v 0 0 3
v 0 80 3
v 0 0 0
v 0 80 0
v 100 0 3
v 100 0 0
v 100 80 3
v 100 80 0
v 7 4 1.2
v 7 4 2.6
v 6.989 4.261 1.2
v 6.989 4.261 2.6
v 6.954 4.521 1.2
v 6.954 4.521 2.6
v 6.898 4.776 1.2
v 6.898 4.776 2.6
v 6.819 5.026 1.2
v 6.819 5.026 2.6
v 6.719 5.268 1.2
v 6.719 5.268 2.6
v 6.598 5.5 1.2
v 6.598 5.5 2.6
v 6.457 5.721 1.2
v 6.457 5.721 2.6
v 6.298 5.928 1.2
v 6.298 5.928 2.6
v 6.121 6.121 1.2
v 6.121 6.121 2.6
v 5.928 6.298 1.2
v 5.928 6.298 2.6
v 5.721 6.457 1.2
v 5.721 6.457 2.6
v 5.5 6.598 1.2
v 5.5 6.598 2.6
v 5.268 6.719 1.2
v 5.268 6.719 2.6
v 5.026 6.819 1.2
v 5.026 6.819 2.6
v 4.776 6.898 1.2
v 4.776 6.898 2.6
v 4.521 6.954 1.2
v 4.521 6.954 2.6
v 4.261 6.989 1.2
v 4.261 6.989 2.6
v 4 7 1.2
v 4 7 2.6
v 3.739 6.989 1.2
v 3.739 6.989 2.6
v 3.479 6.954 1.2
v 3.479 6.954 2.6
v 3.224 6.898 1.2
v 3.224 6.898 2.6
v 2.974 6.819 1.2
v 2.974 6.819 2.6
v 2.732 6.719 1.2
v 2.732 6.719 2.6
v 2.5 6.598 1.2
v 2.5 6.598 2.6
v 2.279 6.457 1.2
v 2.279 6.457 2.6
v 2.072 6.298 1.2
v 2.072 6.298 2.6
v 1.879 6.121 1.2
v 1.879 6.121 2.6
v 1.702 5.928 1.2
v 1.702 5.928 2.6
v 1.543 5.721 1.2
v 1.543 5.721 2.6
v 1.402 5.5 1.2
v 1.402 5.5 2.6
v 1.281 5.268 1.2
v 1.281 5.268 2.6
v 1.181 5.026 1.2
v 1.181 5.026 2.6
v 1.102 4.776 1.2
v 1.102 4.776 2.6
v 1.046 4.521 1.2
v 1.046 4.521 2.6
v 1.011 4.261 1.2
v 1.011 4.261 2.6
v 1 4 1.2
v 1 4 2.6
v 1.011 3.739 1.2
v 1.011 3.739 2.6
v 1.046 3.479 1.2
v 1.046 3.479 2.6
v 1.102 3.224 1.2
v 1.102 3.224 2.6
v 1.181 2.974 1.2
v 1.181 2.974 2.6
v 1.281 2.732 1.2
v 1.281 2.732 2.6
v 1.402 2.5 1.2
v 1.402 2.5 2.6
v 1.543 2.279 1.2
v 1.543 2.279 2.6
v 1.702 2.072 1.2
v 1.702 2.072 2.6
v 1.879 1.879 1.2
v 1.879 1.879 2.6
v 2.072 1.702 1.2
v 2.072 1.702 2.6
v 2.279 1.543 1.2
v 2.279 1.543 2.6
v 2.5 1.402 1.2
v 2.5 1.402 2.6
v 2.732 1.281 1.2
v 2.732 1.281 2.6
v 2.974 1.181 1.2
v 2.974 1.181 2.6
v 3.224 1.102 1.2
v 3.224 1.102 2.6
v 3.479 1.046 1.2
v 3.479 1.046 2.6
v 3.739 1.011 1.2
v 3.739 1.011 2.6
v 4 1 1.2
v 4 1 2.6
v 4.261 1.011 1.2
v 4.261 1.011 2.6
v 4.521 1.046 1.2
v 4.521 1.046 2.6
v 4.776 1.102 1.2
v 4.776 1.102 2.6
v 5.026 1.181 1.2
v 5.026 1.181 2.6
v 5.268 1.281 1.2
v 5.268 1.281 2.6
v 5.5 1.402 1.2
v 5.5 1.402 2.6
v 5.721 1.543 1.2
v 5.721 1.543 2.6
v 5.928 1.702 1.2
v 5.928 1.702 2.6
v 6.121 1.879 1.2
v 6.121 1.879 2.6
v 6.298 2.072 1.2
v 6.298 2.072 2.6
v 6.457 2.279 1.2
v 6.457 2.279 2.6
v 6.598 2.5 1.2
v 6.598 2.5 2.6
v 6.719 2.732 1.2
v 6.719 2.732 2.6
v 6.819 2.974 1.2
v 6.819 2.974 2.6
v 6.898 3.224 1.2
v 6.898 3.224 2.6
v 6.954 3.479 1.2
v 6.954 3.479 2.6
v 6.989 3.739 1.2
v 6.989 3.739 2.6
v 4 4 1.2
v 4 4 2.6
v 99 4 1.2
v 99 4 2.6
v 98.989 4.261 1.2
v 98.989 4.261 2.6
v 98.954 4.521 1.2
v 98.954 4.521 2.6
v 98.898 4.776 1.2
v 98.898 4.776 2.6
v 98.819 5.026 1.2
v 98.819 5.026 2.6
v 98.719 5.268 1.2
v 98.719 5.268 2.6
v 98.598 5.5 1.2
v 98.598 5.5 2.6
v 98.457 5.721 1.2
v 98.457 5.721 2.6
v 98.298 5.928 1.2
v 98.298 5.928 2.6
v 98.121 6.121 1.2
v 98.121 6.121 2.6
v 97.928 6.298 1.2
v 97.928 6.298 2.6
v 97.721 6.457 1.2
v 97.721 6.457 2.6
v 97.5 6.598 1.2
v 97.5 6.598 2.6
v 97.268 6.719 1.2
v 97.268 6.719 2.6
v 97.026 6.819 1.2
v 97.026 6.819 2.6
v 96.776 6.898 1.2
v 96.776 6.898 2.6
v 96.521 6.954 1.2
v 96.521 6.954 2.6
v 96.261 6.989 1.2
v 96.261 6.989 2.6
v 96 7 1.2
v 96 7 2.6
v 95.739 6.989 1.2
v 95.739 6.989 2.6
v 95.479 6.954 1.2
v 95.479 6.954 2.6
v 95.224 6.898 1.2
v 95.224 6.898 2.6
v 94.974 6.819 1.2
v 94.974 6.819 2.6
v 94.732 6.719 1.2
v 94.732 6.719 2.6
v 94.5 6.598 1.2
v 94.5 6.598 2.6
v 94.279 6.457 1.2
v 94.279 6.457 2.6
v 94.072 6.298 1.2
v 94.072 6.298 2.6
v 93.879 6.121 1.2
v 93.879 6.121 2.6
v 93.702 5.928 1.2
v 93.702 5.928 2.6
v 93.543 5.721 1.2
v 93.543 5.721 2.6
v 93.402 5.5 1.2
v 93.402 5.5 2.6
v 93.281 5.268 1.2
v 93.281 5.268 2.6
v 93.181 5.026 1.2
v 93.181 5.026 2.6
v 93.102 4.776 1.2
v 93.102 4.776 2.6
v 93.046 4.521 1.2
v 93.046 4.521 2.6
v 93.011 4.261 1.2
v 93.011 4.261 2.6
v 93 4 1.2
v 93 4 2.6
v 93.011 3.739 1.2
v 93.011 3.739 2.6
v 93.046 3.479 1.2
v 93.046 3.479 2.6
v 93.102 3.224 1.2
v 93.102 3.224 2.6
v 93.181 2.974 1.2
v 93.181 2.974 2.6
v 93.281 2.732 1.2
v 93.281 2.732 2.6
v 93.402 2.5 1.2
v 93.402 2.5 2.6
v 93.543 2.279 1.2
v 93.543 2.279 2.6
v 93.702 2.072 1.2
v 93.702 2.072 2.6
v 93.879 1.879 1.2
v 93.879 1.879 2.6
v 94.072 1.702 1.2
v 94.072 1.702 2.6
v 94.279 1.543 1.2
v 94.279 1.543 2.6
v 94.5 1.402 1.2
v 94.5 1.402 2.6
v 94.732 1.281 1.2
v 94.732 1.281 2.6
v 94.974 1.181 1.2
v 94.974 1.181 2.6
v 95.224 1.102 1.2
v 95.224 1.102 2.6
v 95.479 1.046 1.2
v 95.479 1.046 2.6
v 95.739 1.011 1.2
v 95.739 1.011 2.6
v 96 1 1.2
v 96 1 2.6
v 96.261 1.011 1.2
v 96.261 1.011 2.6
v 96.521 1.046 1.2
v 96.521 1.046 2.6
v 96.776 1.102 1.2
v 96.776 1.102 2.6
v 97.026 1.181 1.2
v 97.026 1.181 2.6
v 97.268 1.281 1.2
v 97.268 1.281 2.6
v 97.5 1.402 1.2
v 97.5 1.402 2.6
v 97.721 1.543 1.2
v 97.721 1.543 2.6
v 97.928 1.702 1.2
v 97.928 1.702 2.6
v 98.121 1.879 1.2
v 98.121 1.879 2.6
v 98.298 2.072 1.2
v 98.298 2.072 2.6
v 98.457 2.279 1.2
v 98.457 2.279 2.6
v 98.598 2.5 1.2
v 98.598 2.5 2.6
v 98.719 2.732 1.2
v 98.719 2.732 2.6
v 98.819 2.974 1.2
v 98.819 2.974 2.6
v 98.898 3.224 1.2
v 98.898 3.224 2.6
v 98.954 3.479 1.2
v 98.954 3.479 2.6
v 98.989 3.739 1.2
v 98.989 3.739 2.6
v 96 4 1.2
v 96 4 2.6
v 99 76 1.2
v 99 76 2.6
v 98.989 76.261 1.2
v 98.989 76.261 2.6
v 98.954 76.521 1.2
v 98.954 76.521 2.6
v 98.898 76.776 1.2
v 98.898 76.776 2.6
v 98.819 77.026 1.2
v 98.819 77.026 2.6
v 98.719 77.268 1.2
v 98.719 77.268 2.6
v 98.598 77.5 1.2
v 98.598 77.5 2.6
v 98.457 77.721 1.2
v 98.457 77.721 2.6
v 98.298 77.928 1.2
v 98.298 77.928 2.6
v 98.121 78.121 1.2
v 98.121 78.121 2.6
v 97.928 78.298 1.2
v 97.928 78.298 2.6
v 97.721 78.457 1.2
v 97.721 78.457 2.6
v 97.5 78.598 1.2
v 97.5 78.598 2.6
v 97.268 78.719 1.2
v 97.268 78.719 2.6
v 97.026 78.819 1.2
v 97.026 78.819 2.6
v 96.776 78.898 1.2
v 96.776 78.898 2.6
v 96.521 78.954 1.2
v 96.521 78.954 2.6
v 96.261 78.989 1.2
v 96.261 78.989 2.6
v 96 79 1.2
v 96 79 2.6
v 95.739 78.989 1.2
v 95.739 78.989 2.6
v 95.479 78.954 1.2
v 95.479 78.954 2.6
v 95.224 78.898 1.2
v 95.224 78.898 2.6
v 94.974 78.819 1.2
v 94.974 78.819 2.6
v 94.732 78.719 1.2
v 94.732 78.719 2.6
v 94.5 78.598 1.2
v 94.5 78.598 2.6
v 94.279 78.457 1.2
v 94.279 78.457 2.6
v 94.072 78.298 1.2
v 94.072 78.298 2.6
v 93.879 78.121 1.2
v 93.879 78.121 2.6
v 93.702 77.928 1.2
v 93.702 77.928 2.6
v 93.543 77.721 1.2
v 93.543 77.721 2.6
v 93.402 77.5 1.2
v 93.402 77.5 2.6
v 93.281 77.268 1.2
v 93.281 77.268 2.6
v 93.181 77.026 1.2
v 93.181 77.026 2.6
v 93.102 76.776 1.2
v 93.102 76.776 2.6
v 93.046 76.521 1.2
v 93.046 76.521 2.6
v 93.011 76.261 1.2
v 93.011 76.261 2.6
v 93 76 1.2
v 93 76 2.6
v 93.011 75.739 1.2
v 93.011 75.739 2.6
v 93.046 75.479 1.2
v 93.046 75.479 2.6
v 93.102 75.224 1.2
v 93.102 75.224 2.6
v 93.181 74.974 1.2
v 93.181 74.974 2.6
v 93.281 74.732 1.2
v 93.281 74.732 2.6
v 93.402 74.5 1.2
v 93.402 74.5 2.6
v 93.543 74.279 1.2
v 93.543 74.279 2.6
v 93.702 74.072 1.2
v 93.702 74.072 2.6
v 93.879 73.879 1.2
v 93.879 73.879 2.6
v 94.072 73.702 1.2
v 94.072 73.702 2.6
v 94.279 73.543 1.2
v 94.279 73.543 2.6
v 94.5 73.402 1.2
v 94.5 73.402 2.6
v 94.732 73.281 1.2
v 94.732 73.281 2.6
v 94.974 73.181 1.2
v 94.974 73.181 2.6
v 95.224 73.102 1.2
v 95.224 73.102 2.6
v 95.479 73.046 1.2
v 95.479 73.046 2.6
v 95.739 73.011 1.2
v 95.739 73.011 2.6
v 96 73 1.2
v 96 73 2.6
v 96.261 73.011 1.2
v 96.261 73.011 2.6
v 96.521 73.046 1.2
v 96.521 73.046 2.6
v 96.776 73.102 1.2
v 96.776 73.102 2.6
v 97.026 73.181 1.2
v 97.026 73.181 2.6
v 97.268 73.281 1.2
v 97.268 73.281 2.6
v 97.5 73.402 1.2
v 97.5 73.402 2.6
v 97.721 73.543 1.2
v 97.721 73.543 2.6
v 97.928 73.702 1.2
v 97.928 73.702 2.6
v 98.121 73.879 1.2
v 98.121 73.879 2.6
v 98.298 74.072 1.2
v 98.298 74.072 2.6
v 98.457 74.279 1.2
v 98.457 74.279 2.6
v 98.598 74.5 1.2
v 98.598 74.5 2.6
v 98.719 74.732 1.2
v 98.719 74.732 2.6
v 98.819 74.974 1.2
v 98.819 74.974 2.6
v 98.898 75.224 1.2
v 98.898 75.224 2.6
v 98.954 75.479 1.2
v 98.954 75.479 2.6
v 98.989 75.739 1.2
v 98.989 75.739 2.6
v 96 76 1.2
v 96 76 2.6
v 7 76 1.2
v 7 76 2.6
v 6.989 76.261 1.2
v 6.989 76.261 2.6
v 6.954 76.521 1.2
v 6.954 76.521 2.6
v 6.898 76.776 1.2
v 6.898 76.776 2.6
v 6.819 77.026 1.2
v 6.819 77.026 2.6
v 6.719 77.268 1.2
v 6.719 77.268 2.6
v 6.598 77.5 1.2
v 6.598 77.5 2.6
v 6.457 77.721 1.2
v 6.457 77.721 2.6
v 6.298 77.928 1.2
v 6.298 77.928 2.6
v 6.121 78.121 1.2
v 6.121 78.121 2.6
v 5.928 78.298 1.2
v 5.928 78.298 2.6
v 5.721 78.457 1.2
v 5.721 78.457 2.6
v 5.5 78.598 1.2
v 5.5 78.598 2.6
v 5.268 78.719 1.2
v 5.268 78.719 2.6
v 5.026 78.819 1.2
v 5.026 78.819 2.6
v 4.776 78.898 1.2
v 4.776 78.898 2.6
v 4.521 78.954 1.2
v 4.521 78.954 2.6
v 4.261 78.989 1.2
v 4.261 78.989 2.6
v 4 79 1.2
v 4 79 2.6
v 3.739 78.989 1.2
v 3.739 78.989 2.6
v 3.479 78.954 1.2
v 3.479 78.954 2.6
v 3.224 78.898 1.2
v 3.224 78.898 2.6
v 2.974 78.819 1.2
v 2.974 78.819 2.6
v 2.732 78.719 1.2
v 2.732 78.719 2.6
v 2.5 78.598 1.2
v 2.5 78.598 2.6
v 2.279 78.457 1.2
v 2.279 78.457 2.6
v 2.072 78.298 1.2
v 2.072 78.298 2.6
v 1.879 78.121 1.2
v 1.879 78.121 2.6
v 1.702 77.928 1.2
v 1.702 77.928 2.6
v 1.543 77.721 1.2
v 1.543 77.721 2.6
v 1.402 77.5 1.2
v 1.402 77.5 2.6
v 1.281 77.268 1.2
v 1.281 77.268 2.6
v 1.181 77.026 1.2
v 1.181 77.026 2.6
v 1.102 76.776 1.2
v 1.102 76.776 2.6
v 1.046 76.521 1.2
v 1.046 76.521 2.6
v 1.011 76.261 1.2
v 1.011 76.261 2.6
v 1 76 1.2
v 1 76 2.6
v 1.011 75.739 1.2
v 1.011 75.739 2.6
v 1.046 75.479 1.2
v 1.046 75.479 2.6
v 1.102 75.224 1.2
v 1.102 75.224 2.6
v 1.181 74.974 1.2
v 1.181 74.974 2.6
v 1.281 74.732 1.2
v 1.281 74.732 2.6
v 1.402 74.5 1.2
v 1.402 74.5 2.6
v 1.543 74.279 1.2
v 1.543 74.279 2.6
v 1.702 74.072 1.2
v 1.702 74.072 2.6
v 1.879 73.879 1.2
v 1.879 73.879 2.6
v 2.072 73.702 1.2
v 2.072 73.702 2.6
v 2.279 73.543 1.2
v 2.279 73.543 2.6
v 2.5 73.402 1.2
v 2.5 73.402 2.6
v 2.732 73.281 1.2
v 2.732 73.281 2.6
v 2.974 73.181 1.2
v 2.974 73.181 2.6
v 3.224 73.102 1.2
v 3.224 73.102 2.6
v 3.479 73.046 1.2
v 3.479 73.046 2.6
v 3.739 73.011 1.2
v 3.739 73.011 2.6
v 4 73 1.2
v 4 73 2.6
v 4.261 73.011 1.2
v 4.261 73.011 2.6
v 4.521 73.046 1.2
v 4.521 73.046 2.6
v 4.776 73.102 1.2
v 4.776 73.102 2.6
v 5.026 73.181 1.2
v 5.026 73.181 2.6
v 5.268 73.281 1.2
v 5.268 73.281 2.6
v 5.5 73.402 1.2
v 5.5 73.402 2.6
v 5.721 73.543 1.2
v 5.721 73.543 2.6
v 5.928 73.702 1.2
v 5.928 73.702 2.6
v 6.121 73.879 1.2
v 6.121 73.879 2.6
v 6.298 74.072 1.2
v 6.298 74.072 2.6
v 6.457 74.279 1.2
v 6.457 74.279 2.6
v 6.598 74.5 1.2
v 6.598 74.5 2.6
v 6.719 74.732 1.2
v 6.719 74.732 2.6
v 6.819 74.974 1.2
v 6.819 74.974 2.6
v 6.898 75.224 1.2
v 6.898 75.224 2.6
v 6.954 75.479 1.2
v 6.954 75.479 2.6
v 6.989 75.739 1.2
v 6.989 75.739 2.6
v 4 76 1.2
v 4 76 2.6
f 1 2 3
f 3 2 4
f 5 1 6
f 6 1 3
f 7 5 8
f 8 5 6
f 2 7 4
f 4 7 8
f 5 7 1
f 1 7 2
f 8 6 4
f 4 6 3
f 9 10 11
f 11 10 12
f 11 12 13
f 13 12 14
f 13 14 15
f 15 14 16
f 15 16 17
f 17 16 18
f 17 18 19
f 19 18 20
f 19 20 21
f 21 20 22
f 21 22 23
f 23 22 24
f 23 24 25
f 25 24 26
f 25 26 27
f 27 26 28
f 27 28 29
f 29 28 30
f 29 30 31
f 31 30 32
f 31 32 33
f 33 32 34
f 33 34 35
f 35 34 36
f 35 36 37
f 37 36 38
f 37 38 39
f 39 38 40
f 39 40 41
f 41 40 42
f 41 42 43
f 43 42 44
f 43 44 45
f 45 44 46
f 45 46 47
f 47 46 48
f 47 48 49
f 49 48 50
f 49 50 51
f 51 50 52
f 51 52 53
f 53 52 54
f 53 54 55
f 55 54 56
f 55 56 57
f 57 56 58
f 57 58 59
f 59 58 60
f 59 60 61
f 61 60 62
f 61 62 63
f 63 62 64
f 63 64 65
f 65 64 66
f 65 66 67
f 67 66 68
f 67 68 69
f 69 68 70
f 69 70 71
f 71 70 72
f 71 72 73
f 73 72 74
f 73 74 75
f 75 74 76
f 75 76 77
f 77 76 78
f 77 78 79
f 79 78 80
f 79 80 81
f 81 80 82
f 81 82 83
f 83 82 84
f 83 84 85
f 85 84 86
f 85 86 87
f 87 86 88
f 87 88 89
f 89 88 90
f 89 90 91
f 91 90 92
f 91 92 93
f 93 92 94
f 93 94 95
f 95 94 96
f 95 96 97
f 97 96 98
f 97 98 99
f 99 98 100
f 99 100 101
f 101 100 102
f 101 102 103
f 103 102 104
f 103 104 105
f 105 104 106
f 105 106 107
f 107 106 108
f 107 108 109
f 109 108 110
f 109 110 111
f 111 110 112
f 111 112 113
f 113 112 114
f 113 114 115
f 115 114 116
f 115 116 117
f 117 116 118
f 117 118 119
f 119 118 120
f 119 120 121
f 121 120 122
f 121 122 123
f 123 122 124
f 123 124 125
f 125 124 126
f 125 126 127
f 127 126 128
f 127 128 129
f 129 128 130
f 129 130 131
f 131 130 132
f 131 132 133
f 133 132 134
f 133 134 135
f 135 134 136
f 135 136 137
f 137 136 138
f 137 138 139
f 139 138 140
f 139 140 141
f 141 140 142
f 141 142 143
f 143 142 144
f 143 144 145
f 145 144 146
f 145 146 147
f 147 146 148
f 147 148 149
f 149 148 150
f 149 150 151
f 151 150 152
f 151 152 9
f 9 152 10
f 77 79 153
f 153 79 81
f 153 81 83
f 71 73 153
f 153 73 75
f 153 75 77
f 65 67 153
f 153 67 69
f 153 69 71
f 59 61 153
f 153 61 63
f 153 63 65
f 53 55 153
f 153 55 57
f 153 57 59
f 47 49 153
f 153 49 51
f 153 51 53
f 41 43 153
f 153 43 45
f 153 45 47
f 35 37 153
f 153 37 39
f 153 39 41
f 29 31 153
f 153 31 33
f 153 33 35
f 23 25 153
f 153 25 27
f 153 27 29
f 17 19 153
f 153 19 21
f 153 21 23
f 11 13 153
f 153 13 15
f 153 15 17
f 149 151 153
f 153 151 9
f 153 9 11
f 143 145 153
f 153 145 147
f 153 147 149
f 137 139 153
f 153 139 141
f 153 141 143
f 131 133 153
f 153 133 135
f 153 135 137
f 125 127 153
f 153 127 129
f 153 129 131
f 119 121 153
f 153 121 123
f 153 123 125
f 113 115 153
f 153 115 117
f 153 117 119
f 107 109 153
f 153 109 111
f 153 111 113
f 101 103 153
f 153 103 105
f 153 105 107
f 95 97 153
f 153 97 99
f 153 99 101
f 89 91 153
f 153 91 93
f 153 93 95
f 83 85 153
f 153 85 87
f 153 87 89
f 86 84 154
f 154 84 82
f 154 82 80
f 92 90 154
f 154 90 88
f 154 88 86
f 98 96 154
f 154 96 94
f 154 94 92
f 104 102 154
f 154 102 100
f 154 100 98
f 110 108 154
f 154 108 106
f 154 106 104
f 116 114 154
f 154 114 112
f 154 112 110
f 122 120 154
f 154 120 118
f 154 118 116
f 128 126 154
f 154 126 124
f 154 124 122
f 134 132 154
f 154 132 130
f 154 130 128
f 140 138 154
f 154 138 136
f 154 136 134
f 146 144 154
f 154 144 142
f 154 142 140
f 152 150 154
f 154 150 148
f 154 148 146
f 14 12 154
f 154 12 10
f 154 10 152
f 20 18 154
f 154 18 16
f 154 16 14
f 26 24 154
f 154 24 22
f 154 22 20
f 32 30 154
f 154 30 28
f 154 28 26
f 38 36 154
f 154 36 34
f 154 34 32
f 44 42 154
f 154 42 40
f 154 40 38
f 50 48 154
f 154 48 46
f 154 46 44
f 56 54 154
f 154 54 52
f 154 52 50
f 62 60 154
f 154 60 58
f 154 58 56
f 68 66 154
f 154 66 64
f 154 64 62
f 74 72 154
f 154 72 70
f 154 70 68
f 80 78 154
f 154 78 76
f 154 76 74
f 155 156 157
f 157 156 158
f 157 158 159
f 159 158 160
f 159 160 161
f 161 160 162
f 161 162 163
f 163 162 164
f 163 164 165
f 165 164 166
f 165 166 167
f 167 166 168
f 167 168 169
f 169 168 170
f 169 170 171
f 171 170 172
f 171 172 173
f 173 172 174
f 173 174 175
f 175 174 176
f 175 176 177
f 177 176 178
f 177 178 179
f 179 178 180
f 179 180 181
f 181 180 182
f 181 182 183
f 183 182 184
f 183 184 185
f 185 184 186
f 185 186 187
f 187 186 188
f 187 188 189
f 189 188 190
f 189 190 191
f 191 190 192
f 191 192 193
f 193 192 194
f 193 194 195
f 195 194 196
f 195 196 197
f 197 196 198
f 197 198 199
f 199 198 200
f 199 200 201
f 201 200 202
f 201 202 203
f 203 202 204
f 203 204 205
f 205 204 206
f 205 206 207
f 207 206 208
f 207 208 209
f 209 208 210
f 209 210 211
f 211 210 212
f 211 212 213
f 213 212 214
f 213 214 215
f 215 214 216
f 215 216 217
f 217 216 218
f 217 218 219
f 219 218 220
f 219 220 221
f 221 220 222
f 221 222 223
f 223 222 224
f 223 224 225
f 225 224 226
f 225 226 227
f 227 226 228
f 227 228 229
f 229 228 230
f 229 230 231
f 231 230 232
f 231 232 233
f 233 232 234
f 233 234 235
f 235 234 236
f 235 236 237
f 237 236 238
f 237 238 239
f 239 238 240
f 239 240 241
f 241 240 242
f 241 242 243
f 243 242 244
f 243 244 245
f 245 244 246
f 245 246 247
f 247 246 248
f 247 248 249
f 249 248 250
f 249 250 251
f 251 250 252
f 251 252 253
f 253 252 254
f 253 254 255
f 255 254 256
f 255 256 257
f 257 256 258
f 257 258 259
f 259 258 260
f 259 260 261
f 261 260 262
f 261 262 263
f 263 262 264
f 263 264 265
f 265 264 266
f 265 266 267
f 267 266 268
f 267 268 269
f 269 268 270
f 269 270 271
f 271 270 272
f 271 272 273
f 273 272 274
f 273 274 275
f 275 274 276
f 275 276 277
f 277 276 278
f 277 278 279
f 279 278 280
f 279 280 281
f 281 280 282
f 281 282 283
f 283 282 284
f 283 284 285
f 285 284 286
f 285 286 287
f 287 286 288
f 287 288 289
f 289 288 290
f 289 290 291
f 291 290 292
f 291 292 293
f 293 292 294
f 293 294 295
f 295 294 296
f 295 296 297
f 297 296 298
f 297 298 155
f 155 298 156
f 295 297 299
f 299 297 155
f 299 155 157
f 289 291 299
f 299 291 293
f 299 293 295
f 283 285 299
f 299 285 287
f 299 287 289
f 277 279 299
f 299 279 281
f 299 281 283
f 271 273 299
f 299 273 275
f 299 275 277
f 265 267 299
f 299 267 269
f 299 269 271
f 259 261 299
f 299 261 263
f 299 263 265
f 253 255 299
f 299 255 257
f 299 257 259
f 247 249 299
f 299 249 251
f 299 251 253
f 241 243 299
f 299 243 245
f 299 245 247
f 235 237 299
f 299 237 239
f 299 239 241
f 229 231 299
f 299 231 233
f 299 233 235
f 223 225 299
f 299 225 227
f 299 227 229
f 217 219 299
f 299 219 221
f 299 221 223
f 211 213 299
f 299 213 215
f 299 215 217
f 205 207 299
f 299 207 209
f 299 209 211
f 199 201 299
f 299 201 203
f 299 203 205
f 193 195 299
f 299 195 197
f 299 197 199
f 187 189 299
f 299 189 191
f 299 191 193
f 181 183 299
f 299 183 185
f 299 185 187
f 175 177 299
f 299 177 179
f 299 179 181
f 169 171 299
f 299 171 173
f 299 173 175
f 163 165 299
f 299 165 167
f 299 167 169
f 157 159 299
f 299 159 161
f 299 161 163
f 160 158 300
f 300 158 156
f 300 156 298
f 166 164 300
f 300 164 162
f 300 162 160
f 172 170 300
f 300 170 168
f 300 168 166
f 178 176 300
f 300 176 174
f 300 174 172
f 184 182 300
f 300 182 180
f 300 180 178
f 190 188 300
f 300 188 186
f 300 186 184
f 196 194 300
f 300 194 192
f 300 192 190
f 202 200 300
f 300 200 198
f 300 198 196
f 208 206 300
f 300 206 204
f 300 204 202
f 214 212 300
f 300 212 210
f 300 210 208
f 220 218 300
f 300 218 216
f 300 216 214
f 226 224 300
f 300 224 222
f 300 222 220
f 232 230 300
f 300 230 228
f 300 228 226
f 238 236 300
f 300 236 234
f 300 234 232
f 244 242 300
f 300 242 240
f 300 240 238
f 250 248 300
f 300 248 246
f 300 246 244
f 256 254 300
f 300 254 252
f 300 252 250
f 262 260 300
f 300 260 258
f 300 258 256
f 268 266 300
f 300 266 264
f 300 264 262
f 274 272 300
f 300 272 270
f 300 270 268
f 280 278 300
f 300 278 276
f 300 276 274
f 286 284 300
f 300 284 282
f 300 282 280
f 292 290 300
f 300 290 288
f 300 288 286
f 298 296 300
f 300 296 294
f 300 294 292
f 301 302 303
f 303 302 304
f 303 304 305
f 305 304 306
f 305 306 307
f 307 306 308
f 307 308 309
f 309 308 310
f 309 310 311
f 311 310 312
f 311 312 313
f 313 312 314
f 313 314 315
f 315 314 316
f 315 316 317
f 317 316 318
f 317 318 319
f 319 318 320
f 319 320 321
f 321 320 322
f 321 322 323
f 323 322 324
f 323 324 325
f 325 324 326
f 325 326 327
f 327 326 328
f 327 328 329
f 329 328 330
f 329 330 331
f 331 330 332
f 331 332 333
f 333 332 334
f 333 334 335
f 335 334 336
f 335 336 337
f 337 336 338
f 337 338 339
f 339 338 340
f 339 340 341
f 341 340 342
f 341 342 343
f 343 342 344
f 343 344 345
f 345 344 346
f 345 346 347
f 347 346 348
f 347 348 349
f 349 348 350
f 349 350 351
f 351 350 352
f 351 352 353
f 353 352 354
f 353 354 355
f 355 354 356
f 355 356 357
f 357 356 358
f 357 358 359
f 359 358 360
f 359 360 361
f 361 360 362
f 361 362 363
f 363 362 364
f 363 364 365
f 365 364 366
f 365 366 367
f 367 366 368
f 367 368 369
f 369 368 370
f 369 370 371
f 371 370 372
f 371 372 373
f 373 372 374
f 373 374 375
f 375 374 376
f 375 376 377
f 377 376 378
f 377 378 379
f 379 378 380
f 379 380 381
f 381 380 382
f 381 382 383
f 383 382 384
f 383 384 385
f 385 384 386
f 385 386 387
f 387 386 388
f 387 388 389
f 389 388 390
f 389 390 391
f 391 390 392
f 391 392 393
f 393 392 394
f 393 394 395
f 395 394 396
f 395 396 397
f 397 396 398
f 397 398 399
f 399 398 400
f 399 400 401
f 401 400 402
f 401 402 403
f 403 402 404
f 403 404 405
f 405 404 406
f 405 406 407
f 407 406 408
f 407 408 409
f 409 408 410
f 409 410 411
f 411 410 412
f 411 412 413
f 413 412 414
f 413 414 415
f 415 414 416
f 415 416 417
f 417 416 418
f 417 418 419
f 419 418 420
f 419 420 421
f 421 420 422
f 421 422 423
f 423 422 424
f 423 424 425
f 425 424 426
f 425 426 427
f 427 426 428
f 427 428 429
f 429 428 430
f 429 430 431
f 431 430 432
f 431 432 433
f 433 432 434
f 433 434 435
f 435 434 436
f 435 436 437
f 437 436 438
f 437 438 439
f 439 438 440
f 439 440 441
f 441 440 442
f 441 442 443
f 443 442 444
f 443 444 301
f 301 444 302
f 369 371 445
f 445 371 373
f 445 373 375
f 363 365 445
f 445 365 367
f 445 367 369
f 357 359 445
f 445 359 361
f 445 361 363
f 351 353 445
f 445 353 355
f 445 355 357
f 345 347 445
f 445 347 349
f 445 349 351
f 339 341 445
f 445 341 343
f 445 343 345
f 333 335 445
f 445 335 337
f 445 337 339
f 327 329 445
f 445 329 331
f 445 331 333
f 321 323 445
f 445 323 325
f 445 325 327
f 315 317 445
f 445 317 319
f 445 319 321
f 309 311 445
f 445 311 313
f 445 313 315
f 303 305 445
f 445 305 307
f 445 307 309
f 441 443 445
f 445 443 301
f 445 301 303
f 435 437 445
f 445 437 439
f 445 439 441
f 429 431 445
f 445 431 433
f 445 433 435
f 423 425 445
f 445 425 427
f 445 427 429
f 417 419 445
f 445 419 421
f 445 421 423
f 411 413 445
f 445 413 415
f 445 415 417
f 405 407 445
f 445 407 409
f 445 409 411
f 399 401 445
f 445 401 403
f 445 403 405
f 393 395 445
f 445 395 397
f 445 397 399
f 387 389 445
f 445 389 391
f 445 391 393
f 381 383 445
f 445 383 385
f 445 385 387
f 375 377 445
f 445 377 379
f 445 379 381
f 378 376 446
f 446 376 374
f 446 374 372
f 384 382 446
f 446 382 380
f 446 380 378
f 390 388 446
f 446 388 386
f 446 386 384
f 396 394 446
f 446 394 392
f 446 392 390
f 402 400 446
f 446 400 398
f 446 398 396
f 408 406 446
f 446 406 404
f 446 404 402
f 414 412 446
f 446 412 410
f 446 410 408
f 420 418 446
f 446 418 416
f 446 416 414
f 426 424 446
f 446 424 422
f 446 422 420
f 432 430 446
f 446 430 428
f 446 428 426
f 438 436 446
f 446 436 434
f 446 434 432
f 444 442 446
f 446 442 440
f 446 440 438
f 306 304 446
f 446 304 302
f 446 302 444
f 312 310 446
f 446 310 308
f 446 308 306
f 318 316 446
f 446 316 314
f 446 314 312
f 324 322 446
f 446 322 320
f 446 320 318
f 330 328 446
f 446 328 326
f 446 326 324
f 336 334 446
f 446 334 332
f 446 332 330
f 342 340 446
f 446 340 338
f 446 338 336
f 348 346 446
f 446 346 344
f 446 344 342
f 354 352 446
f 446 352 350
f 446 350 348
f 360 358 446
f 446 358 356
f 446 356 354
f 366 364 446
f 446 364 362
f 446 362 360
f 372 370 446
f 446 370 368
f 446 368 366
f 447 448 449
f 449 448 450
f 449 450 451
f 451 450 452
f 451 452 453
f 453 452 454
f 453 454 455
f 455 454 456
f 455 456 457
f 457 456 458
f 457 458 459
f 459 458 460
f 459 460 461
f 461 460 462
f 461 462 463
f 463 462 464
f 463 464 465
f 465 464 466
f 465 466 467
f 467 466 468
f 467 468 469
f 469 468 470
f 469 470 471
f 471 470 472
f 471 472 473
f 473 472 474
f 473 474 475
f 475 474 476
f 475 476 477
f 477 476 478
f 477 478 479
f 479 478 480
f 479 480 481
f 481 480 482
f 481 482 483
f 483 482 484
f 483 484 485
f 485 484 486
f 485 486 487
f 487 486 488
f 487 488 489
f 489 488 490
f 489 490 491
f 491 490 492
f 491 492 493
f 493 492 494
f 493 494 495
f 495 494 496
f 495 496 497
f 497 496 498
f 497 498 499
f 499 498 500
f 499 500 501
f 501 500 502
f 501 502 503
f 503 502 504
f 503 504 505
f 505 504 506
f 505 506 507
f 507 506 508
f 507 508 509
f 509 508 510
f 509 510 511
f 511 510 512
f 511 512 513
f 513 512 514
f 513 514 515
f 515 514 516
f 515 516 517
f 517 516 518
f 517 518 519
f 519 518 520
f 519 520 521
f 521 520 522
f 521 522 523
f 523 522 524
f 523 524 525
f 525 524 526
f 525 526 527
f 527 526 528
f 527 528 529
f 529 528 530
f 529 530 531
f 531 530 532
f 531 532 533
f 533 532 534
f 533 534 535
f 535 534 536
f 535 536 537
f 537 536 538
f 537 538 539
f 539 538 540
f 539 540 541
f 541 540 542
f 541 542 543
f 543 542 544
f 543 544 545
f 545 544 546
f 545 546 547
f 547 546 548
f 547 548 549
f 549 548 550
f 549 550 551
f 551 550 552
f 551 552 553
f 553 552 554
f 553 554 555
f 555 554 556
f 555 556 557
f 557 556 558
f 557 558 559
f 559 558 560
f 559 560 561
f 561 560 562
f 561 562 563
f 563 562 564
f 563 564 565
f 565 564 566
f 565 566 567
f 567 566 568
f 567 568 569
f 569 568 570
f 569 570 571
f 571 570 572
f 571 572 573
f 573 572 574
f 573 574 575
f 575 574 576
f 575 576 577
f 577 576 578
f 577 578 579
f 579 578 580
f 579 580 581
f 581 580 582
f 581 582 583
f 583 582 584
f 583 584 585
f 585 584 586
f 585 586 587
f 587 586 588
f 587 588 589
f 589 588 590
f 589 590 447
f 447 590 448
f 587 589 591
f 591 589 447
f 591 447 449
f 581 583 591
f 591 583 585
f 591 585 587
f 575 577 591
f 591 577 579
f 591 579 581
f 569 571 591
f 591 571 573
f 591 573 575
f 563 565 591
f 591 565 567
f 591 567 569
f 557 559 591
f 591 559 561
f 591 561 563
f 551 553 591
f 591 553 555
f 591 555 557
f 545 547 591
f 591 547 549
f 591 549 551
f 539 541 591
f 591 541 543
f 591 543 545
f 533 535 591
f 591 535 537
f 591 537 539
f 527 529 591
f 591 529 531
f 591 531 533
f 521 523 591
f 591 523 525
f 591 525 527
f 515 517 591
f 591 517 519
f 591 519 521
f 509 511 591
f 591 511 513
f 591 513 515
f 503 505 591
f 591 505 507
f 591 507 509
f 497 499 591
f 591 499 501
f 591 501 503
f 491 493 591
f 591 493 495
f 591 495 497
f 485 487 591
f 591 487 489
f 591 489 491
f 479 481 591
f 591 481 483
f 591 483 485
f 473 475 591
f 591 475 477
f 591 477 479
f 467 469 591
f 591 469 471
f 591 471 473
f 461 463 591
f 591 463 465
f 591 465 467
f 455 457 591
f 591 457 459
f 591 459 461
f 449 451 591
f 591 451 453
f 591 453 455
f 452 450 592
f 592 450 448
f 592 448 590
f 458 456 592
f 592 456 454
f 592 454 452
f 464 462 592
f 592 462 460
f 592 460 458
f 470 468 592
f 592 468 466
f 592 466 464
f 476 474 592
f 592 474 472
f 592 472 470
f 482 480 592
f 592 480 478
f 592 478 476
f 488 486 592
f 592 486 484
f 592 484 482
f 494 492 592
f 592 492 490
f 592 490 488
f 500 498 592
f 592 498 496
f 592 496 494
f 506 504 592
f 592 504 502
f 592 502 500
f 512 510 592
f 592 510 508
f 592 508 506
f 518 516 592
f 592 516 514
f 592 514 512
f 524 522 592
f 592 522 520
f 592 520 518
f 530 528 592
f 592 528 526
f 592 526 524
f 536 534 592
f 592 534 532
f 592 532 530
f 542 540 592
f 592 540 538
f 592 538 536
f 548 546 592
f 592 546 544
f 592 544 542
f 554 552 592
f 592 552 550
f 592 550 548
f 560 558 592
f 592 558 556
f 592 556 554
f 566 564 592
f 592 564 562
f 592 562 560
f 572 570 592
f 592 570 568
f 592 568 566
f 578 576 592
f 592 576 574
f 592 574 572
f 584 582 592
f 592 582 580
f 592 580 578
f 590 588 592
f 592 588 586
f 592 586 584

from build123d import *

# Parameters (mm, degrees)
SKICA1_W                 = 100
SKICA1_H                 = 80
P_IDAT_VYSUNUT_M1_DEPTH  = 3
ODEBRAT_START            = -0.4
SKICA2_R                 = 3
ODEBRAT_VYSUNUT_M1_DEPTH = 1.4


with BuildPart() as part:
    # Skica1 → Přidat vysunutím1 (new body)
    with BuildSketch(Plane.XY):
        with Locations((50, 40)):
            Rectangle(SKICA1_W, SKICA1_H)
    extrude(amount=P_IDAT_VYSUNUT_M1_DEPTH)

    # Skica2 → Odebrat vysunutím1 (cut)
    with BuildSketch(Plane.XY.offset(3).offset(ODEBRAT_START)):
        with Locations((4, 76)):
            Circle(SKICA2_R)
        with Locations((96, 76)):
            Circle(SKICA2_R)
        with Locations((96, 4)):
            Circle(SKICA2_R)
        with Locations((4, 4)):
            Circle(SKICA2_R)
    extrude(amount=-ODEBRAT_VYSUNUT_M1_DEPTH, mode=Mode.SUBTRACT)


solid = part.part
